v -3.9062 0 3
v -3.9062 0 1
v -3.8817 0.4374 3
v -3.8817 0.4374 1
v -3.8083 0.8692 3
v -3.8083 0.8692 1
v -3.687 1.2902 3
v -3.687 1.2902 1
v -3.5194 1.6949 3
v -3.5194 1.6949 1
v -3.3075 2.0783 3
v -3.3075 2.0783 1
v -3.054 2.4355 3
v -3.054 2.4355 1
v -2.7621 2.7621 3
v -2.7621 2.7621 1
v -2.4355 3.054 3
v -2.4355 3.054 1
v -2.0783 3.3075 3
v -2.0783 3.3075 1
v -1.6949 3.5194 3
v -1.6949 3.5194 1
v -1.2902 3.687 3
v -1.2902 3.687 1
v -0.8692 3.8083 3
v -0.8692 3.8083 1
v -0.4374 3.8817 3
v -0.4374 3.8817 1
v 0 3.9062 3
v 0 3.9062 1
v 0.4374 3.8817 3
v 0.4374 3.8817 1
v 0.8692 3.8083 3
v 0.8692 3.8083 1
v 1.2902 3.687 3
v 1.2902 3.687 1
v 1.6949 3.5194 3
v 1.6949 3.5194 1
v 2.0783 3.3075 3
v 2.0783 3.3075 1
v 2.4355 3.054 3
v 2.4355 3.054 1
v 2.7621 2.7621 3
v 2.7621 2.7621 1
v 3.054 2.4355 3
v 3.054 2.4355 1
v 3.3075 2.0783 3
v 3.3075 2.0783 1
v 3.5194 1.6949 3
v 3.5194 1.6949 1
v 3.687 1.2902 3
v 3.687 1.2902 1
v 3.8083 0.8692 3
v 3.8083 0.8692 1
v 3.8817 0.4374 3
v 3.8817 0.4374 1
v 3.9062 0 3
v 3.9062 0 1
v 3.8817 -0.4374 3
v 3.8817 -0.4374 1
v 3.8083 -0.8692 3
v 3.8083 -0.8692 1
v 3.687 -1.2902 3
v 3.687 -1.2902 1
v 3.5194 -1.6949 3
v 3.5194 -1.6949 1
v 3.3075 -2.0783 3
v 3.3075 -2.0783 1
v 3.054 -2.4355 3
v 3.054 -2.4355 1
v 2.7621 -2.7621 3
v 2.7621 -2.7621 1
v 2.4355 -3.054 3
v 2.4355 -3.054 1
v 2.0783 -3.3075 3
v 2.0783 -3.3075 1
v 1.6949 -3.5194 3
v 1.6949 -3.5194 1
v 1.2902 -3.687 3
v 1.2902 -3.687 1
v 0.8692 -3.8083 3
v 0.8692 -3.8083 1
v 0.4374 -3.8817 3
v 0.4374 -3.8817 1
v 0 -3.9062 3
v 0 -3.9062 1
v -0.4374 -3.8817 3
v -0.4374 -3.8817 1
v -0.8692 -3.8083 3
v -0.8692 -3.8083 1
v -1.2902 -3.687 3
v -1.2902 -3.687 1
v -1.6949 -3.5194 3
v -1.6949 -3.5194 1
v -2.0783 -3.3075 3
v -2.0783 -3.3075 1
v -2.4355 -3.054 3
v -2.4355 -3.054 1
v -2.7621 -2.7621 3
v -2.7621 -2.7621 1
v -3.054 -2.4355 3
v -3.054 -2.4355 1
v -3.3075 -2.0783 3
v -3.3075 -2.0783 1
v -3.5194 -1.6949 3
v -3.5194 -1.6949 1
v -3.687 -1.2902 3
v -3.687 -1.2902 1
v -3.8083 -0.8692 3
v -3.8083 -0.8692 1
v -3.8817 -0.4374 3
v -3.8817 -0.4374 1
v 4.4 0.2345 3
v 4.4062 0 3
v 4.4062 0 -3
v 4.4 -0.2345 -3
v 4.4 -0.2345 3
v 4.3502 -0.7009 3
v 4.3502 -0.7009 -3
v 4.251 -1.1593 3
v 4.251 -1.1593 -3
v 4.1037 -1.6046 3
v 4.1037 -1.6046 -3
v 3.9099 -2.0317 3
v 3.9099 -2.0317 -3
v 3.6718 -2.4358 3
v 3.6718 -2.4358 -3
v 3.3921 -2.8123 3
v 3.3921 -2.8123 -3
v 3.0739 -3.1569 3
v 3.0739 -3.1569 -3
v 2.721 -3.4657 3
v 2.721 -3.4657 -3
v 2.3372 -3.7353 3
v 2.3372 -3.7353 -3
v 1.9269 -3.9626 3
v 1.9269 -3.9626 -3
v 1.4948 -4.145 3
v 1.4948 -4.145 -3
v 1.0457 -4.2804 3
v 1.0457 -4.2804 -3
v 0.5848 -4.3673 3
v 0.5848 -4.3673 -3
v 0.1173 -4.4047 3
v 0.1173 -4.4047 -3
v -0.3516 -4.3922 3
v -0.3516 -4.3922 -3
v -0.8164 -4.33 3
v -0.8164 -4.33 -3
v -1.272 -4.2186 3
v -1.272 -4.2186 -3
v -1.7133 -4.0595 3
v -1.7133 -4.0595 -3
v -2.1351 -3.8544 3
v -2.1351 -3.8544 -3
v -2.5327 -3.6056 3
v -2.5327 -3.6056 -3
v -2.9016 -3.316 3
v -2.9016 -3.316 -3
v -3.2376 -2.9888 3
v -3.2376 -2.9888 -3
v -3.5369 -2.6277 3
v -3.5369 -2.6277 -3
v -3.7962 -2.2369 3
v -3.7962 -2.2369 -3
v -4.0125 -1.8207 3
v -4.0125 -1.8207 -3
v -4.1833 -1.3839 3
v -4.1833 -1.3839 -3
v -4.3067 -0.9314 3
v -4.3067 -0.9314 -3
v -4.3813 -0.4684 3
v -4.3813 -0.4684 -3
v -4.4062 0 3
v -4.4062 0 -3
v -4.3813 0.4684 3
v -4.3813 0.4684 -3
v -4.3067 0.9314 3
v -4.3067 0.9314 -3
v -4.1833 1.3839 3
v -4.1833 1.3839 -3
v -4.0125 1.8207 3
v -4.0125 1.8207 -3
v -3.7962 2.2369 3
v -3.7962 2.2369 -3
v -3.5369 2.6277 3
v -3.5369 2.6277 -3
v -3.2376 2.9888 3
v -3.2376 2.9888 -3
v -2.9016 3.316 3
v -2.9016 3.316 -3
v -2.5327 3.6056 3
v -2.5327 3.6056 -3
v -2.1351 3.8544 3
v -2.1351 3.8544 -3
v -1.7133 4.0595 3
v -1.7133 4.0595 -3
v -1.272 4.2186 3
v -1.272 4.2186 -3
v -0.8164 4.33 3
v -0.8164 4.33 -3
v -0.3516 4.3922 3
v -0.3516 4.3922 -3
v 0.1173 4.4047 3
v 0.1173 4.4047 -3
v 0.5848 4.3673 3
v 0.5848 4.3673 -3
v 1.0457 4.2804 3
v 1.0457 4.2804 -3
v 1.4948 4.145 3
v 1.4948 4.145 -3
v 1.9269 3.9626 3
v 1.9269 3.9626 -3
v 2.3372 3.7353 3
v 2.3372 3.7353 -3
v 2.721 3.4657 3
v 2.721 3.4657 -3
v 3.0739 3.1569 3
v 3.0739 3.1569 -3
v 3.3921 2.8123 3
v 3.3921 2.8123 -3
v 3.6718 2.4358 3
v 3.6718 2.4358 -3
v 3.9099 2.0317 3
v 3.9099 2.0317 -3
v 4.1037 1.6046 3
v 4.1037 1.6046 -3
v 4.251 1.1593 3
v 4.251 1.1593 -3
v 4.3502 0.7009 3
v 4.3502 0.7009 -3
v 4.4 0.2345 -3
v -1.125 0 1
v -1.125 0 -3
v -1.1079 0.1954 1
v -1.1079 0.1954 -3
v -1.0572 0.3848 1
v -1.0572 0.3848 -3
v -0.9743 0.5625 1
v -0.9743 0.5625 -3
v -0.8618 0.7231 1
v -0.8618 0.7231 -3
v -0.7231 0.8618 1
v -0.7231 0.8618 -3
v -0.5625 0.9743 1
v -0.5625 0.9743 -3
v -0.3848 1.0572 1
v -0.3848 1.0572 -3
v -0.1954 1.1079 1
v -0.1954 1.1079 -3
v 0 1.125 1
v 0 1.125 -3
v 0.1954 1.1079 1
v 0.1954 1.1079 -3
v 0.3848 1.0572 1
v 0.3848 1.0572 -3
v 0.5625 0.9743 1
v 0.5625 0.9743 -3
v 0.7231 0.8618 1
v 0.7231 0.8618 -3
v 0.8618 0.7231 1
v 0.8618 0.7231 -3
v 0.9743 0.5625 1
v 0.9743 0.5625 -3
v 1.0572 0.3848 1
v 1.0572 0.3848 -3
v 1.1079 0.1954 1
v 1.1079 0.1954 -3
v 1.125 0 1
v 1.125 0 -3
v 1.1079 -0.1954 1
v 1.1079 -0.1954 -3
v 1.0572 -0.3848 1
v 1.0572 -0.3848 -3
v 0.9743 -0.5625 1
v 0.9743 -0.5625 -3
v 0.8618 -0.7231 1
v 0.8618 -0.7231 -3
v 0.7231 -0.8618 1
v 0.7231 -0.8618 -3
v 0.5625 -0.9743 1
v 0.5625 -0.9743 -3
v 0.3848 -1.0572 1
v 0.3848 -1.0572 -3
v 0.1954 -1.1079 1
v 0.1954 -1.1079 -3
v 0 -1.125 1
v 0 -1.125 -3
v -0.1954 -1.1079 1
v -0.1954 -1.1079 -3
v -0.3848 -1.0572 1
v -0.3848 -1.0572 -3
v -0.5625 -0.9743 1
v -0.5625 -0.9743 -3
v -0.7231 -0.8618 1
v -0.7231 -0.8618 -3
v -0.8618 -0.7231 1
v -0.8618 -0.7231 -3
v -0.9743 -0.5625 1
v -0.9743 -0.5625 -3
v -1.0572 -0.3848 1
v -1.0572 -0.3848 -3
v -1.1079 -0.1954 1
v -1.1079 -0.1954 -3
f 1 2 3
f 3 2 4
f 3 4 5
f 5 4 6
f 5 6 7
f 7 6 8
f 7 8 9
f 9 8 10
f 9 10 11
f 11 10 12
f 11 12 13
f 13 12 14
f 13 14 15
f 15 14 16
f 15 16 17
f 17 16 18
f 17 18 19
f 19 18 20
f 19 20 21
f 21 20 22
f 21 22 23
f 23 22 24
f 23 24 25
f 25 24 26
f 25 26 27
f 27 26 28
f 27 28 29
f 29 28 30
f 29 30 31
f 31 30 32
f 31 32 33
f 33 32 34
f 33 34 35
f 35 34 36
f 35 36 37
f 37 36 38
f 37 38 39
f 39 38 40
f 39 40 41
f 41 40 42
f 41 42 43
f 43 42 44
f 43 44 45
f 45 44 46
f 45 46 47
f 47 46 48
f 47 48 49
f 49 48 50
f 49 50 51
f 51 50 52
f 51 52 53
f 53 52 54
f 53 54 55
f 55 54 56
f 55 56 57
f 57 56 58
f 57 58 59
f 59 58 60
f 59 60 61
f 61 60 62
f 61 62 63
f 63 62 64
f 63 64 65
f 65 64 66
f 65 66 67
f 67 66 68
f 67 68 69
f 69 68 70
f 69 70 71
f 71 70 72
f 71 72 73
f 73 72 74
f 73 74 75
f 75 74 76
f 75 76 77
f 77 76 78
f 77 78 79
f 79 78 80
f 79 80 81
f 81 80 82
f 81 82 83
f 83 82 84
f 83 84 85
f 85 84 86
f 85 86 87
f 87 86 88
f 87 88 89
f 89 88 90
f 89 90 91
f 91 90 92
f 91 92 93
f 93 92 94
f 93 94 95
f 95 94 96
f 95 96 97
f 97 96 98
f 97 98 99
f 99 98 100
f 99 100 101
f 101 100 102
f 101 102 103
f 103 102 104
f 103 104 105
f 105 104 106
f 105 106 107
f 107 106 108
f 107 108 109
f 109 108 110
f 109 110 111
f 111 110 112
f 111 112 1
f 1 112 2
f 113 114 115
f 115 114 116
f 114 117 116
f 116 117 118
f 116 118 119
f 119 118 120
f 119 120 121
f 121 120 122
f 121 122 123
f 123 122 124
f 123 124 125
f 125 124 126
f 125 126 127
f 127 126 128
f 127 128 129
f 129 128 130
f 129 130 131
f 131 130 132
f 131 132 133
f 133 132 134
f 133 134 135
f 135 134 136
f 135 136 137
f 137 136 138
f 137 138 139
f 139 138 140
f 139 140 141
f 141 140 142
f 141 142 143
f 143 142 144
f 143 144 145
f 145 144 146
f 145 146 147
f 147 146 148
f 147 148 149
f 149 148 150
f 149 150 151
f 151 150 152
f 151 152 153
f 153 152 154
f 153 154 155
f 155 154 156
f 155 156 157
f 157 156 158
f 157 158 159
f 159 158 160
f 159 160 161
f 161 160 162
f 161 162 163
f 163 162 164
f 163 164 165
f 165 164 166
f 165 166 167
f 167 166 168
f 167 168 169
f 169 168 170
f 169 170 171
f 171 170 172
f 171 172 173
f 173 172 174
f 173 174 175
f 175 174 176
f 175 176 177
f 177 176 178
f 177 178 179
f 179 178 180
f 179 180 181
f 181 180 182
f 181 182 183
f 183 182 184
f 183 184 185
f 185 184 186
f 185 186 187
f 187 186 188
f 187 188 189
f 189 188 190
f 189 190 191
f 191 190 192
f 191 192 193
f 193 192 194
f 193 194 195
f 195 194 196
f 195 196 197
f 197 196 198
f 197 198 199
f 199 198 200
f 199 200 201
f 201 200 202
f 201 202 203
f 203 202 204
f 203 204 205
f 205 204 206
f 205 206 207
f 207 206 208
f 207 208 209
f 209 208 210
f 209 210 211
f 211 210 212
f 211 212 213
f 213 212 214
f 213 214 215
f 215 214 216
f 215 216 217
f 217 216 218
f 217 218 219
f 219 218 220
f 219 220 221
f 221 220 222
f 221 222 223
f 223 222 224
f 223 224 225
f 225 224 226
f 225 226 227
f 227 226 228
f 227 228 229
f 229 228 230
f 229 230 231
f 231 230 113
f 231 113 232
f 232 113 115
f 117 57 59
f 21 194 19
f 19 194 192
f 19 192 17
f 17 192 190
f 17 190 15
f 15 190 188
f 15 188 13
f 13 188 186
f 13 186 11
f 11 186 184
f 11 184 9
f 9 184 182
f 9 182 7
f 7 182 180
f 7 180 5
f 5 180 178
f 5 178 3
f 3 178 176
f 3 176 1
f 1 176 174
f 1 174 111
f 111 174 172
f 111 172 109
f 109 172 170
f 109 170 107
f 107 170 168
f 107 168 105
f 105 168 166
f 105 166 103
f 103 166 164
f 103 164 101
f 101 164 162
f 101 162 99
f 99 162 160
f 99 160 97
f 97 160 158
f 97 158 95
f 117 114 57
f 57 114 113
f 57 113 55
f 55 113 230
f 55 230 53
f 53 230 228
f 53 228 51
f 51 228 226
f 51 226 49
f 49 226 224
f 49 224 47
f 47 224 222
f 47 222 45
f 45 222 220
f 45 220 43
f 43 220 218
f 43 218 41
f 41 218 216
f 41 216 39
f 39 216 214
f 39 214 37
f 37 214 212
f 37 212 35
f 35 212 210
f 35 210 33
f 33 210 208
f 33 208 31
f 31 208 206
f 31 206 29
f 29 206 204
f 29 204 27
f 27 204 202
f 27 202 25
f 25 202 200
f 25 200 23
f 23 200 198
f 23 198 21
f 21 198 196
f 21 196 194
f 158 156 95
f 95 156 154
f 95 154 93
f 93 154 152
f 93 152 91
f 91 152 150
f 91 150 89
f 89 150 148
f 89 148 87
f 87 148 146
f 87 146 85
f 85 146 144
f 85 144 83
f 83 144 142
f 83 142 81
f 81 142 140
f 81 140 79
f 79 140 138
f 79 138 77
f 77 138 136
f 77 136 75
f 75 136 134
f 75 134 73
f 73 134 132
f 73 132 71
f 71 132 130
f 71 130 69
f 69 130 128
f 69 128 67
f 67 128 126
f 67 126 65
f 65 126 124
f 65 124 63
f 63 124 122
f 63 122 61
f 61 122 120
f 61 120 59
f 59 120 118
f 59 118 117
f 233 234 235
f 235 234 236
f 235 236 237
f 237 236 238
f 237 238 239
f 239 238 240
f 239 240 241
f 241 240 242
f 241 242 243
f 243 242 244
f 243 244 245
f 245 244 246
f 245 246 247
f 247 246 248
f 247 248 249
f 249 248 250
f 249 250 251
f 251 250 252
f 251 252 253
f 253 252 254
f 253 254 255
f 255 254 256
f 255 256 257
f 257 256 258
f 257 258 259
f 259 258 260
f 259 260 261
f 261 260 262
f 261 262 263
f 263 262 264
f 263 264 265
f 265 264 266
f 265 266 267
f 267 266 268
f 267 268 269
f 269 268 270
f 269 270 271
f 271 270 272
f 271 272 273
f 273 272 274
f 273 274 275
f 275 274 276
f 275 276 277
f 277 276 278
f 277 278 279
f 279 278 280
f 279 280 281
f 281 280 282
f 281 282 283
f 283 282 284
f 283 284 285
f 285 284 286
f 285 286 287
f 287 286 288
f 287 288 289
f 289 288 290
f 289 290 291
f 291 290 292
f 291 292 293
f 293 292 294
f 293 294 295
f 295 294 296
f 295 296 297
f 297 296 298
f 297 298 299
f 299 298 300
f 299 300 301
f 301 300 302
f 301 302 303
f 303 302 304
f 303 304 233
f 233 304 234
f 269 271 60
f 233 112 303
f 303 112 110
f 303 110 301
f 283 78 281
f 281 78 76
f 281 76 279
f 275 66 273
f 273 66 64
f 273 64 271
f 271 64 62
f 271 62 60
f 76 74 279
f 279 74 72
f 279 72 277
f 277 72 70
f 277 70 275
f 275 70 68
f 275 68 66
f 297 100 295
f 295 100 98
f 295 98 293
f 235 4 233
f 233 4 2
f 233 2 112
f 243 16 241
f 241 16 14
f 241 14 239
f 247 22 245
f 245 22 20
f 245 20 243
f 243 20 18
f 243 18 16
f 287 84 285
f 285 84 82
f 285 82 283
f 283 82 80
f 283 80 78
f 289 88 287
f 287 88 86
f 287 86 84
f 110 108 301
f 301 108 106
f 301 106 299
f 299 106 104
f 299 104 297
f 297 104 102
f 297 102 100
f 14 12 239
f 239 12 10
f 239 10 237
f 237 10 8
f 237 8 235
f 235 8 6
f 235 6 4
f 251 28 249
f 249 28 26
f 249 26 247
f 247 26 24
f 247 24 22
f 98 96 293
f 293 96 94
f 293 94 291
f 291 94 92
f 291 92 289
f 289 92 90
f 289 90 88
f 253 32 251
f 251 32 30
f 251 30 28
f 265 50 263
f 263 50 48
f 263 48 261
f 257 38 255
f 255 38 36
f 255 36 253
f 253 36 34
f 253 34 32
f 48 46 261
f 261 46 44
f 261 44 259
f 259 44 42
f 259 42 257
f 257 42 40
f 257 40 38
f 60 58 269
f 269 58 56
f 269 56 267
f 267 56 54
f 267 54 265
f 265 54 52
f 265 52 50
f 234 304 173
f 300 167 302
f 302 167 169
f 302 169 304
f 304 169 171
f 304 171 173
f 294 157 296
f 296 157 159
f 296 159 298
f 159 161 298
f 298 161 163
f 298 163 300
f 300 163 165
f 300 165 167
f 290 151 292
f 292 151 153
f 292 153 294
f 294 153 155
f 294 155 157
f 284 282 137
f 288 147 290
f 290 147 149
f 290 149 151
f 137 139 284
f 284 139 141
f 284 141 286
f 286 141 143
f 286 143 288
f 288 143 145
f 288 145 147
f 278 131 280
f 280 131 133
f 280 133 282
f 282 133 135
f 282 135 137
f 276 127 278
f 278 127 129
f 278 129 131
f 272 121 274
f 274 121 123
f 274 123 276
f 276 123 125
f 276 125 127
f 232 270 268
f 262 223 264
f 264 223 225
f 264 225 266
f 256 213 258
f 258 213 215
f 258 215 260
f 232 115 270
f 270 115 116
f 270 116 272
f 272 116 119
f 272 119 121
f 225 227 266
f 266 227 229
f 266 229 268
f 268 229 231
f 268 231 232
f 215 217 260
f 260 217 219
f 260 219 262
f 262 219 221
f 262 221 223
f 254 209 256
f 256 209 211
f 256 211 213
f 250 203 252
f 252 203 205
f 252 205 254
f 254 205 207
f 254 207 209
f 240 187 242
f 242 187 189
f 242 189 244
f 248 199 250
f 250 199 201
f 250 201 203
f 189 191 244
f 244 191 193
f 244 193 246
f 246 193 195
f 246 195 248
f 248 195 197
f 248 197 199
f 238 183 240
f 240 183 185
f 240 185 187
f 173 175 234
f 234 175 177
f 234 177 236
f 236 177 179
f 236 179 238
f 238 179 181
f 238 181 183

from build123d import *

# Parameters (mm, degrees)
SKETCH1_R                = 4.40625
SKETCH1_R_2              = 3.90625
BOSS_EXTRUDE1_DEPTH      = 3
BOSS_EXTRUDE2_DEPTH      = 1
BOSS_EXTRUDE2_DEPTH_BACK = 3
SKETCH1_3_R              = 4.40625
SKETCH1_3_R_2            = 1.125


with BuildPart() as part:
    # Sketch1 → Boss-Extrude1 (new body)
    with BuildSketch(Plane.XY):
        Circle(SKETCH1_R)
        Circle(SKETCH1_R_2, mode=Mode.SUBTRACT)
    extrude(amount=BOSS_EXTRUDE1_DEPTH)

    # Sketch1<3> → Boss-Extrude2 (add, two sides: drawn at the far end of the back side and taken through both)
    with BuildSketch(Plane.XY.offset(-BOSS_EXTRUDE2_DEPTH_BACK)):
        Circle(SKETCH1_3_R)
        Circle(SKETCH1_3_R_2, mode=Mode.SUBTRACT)
    extrude(amount=BOSS_EXTRUDE2_DEPTH + BOSS_EXTRUDE2_DEPTH_BACK)


solid = part.part
